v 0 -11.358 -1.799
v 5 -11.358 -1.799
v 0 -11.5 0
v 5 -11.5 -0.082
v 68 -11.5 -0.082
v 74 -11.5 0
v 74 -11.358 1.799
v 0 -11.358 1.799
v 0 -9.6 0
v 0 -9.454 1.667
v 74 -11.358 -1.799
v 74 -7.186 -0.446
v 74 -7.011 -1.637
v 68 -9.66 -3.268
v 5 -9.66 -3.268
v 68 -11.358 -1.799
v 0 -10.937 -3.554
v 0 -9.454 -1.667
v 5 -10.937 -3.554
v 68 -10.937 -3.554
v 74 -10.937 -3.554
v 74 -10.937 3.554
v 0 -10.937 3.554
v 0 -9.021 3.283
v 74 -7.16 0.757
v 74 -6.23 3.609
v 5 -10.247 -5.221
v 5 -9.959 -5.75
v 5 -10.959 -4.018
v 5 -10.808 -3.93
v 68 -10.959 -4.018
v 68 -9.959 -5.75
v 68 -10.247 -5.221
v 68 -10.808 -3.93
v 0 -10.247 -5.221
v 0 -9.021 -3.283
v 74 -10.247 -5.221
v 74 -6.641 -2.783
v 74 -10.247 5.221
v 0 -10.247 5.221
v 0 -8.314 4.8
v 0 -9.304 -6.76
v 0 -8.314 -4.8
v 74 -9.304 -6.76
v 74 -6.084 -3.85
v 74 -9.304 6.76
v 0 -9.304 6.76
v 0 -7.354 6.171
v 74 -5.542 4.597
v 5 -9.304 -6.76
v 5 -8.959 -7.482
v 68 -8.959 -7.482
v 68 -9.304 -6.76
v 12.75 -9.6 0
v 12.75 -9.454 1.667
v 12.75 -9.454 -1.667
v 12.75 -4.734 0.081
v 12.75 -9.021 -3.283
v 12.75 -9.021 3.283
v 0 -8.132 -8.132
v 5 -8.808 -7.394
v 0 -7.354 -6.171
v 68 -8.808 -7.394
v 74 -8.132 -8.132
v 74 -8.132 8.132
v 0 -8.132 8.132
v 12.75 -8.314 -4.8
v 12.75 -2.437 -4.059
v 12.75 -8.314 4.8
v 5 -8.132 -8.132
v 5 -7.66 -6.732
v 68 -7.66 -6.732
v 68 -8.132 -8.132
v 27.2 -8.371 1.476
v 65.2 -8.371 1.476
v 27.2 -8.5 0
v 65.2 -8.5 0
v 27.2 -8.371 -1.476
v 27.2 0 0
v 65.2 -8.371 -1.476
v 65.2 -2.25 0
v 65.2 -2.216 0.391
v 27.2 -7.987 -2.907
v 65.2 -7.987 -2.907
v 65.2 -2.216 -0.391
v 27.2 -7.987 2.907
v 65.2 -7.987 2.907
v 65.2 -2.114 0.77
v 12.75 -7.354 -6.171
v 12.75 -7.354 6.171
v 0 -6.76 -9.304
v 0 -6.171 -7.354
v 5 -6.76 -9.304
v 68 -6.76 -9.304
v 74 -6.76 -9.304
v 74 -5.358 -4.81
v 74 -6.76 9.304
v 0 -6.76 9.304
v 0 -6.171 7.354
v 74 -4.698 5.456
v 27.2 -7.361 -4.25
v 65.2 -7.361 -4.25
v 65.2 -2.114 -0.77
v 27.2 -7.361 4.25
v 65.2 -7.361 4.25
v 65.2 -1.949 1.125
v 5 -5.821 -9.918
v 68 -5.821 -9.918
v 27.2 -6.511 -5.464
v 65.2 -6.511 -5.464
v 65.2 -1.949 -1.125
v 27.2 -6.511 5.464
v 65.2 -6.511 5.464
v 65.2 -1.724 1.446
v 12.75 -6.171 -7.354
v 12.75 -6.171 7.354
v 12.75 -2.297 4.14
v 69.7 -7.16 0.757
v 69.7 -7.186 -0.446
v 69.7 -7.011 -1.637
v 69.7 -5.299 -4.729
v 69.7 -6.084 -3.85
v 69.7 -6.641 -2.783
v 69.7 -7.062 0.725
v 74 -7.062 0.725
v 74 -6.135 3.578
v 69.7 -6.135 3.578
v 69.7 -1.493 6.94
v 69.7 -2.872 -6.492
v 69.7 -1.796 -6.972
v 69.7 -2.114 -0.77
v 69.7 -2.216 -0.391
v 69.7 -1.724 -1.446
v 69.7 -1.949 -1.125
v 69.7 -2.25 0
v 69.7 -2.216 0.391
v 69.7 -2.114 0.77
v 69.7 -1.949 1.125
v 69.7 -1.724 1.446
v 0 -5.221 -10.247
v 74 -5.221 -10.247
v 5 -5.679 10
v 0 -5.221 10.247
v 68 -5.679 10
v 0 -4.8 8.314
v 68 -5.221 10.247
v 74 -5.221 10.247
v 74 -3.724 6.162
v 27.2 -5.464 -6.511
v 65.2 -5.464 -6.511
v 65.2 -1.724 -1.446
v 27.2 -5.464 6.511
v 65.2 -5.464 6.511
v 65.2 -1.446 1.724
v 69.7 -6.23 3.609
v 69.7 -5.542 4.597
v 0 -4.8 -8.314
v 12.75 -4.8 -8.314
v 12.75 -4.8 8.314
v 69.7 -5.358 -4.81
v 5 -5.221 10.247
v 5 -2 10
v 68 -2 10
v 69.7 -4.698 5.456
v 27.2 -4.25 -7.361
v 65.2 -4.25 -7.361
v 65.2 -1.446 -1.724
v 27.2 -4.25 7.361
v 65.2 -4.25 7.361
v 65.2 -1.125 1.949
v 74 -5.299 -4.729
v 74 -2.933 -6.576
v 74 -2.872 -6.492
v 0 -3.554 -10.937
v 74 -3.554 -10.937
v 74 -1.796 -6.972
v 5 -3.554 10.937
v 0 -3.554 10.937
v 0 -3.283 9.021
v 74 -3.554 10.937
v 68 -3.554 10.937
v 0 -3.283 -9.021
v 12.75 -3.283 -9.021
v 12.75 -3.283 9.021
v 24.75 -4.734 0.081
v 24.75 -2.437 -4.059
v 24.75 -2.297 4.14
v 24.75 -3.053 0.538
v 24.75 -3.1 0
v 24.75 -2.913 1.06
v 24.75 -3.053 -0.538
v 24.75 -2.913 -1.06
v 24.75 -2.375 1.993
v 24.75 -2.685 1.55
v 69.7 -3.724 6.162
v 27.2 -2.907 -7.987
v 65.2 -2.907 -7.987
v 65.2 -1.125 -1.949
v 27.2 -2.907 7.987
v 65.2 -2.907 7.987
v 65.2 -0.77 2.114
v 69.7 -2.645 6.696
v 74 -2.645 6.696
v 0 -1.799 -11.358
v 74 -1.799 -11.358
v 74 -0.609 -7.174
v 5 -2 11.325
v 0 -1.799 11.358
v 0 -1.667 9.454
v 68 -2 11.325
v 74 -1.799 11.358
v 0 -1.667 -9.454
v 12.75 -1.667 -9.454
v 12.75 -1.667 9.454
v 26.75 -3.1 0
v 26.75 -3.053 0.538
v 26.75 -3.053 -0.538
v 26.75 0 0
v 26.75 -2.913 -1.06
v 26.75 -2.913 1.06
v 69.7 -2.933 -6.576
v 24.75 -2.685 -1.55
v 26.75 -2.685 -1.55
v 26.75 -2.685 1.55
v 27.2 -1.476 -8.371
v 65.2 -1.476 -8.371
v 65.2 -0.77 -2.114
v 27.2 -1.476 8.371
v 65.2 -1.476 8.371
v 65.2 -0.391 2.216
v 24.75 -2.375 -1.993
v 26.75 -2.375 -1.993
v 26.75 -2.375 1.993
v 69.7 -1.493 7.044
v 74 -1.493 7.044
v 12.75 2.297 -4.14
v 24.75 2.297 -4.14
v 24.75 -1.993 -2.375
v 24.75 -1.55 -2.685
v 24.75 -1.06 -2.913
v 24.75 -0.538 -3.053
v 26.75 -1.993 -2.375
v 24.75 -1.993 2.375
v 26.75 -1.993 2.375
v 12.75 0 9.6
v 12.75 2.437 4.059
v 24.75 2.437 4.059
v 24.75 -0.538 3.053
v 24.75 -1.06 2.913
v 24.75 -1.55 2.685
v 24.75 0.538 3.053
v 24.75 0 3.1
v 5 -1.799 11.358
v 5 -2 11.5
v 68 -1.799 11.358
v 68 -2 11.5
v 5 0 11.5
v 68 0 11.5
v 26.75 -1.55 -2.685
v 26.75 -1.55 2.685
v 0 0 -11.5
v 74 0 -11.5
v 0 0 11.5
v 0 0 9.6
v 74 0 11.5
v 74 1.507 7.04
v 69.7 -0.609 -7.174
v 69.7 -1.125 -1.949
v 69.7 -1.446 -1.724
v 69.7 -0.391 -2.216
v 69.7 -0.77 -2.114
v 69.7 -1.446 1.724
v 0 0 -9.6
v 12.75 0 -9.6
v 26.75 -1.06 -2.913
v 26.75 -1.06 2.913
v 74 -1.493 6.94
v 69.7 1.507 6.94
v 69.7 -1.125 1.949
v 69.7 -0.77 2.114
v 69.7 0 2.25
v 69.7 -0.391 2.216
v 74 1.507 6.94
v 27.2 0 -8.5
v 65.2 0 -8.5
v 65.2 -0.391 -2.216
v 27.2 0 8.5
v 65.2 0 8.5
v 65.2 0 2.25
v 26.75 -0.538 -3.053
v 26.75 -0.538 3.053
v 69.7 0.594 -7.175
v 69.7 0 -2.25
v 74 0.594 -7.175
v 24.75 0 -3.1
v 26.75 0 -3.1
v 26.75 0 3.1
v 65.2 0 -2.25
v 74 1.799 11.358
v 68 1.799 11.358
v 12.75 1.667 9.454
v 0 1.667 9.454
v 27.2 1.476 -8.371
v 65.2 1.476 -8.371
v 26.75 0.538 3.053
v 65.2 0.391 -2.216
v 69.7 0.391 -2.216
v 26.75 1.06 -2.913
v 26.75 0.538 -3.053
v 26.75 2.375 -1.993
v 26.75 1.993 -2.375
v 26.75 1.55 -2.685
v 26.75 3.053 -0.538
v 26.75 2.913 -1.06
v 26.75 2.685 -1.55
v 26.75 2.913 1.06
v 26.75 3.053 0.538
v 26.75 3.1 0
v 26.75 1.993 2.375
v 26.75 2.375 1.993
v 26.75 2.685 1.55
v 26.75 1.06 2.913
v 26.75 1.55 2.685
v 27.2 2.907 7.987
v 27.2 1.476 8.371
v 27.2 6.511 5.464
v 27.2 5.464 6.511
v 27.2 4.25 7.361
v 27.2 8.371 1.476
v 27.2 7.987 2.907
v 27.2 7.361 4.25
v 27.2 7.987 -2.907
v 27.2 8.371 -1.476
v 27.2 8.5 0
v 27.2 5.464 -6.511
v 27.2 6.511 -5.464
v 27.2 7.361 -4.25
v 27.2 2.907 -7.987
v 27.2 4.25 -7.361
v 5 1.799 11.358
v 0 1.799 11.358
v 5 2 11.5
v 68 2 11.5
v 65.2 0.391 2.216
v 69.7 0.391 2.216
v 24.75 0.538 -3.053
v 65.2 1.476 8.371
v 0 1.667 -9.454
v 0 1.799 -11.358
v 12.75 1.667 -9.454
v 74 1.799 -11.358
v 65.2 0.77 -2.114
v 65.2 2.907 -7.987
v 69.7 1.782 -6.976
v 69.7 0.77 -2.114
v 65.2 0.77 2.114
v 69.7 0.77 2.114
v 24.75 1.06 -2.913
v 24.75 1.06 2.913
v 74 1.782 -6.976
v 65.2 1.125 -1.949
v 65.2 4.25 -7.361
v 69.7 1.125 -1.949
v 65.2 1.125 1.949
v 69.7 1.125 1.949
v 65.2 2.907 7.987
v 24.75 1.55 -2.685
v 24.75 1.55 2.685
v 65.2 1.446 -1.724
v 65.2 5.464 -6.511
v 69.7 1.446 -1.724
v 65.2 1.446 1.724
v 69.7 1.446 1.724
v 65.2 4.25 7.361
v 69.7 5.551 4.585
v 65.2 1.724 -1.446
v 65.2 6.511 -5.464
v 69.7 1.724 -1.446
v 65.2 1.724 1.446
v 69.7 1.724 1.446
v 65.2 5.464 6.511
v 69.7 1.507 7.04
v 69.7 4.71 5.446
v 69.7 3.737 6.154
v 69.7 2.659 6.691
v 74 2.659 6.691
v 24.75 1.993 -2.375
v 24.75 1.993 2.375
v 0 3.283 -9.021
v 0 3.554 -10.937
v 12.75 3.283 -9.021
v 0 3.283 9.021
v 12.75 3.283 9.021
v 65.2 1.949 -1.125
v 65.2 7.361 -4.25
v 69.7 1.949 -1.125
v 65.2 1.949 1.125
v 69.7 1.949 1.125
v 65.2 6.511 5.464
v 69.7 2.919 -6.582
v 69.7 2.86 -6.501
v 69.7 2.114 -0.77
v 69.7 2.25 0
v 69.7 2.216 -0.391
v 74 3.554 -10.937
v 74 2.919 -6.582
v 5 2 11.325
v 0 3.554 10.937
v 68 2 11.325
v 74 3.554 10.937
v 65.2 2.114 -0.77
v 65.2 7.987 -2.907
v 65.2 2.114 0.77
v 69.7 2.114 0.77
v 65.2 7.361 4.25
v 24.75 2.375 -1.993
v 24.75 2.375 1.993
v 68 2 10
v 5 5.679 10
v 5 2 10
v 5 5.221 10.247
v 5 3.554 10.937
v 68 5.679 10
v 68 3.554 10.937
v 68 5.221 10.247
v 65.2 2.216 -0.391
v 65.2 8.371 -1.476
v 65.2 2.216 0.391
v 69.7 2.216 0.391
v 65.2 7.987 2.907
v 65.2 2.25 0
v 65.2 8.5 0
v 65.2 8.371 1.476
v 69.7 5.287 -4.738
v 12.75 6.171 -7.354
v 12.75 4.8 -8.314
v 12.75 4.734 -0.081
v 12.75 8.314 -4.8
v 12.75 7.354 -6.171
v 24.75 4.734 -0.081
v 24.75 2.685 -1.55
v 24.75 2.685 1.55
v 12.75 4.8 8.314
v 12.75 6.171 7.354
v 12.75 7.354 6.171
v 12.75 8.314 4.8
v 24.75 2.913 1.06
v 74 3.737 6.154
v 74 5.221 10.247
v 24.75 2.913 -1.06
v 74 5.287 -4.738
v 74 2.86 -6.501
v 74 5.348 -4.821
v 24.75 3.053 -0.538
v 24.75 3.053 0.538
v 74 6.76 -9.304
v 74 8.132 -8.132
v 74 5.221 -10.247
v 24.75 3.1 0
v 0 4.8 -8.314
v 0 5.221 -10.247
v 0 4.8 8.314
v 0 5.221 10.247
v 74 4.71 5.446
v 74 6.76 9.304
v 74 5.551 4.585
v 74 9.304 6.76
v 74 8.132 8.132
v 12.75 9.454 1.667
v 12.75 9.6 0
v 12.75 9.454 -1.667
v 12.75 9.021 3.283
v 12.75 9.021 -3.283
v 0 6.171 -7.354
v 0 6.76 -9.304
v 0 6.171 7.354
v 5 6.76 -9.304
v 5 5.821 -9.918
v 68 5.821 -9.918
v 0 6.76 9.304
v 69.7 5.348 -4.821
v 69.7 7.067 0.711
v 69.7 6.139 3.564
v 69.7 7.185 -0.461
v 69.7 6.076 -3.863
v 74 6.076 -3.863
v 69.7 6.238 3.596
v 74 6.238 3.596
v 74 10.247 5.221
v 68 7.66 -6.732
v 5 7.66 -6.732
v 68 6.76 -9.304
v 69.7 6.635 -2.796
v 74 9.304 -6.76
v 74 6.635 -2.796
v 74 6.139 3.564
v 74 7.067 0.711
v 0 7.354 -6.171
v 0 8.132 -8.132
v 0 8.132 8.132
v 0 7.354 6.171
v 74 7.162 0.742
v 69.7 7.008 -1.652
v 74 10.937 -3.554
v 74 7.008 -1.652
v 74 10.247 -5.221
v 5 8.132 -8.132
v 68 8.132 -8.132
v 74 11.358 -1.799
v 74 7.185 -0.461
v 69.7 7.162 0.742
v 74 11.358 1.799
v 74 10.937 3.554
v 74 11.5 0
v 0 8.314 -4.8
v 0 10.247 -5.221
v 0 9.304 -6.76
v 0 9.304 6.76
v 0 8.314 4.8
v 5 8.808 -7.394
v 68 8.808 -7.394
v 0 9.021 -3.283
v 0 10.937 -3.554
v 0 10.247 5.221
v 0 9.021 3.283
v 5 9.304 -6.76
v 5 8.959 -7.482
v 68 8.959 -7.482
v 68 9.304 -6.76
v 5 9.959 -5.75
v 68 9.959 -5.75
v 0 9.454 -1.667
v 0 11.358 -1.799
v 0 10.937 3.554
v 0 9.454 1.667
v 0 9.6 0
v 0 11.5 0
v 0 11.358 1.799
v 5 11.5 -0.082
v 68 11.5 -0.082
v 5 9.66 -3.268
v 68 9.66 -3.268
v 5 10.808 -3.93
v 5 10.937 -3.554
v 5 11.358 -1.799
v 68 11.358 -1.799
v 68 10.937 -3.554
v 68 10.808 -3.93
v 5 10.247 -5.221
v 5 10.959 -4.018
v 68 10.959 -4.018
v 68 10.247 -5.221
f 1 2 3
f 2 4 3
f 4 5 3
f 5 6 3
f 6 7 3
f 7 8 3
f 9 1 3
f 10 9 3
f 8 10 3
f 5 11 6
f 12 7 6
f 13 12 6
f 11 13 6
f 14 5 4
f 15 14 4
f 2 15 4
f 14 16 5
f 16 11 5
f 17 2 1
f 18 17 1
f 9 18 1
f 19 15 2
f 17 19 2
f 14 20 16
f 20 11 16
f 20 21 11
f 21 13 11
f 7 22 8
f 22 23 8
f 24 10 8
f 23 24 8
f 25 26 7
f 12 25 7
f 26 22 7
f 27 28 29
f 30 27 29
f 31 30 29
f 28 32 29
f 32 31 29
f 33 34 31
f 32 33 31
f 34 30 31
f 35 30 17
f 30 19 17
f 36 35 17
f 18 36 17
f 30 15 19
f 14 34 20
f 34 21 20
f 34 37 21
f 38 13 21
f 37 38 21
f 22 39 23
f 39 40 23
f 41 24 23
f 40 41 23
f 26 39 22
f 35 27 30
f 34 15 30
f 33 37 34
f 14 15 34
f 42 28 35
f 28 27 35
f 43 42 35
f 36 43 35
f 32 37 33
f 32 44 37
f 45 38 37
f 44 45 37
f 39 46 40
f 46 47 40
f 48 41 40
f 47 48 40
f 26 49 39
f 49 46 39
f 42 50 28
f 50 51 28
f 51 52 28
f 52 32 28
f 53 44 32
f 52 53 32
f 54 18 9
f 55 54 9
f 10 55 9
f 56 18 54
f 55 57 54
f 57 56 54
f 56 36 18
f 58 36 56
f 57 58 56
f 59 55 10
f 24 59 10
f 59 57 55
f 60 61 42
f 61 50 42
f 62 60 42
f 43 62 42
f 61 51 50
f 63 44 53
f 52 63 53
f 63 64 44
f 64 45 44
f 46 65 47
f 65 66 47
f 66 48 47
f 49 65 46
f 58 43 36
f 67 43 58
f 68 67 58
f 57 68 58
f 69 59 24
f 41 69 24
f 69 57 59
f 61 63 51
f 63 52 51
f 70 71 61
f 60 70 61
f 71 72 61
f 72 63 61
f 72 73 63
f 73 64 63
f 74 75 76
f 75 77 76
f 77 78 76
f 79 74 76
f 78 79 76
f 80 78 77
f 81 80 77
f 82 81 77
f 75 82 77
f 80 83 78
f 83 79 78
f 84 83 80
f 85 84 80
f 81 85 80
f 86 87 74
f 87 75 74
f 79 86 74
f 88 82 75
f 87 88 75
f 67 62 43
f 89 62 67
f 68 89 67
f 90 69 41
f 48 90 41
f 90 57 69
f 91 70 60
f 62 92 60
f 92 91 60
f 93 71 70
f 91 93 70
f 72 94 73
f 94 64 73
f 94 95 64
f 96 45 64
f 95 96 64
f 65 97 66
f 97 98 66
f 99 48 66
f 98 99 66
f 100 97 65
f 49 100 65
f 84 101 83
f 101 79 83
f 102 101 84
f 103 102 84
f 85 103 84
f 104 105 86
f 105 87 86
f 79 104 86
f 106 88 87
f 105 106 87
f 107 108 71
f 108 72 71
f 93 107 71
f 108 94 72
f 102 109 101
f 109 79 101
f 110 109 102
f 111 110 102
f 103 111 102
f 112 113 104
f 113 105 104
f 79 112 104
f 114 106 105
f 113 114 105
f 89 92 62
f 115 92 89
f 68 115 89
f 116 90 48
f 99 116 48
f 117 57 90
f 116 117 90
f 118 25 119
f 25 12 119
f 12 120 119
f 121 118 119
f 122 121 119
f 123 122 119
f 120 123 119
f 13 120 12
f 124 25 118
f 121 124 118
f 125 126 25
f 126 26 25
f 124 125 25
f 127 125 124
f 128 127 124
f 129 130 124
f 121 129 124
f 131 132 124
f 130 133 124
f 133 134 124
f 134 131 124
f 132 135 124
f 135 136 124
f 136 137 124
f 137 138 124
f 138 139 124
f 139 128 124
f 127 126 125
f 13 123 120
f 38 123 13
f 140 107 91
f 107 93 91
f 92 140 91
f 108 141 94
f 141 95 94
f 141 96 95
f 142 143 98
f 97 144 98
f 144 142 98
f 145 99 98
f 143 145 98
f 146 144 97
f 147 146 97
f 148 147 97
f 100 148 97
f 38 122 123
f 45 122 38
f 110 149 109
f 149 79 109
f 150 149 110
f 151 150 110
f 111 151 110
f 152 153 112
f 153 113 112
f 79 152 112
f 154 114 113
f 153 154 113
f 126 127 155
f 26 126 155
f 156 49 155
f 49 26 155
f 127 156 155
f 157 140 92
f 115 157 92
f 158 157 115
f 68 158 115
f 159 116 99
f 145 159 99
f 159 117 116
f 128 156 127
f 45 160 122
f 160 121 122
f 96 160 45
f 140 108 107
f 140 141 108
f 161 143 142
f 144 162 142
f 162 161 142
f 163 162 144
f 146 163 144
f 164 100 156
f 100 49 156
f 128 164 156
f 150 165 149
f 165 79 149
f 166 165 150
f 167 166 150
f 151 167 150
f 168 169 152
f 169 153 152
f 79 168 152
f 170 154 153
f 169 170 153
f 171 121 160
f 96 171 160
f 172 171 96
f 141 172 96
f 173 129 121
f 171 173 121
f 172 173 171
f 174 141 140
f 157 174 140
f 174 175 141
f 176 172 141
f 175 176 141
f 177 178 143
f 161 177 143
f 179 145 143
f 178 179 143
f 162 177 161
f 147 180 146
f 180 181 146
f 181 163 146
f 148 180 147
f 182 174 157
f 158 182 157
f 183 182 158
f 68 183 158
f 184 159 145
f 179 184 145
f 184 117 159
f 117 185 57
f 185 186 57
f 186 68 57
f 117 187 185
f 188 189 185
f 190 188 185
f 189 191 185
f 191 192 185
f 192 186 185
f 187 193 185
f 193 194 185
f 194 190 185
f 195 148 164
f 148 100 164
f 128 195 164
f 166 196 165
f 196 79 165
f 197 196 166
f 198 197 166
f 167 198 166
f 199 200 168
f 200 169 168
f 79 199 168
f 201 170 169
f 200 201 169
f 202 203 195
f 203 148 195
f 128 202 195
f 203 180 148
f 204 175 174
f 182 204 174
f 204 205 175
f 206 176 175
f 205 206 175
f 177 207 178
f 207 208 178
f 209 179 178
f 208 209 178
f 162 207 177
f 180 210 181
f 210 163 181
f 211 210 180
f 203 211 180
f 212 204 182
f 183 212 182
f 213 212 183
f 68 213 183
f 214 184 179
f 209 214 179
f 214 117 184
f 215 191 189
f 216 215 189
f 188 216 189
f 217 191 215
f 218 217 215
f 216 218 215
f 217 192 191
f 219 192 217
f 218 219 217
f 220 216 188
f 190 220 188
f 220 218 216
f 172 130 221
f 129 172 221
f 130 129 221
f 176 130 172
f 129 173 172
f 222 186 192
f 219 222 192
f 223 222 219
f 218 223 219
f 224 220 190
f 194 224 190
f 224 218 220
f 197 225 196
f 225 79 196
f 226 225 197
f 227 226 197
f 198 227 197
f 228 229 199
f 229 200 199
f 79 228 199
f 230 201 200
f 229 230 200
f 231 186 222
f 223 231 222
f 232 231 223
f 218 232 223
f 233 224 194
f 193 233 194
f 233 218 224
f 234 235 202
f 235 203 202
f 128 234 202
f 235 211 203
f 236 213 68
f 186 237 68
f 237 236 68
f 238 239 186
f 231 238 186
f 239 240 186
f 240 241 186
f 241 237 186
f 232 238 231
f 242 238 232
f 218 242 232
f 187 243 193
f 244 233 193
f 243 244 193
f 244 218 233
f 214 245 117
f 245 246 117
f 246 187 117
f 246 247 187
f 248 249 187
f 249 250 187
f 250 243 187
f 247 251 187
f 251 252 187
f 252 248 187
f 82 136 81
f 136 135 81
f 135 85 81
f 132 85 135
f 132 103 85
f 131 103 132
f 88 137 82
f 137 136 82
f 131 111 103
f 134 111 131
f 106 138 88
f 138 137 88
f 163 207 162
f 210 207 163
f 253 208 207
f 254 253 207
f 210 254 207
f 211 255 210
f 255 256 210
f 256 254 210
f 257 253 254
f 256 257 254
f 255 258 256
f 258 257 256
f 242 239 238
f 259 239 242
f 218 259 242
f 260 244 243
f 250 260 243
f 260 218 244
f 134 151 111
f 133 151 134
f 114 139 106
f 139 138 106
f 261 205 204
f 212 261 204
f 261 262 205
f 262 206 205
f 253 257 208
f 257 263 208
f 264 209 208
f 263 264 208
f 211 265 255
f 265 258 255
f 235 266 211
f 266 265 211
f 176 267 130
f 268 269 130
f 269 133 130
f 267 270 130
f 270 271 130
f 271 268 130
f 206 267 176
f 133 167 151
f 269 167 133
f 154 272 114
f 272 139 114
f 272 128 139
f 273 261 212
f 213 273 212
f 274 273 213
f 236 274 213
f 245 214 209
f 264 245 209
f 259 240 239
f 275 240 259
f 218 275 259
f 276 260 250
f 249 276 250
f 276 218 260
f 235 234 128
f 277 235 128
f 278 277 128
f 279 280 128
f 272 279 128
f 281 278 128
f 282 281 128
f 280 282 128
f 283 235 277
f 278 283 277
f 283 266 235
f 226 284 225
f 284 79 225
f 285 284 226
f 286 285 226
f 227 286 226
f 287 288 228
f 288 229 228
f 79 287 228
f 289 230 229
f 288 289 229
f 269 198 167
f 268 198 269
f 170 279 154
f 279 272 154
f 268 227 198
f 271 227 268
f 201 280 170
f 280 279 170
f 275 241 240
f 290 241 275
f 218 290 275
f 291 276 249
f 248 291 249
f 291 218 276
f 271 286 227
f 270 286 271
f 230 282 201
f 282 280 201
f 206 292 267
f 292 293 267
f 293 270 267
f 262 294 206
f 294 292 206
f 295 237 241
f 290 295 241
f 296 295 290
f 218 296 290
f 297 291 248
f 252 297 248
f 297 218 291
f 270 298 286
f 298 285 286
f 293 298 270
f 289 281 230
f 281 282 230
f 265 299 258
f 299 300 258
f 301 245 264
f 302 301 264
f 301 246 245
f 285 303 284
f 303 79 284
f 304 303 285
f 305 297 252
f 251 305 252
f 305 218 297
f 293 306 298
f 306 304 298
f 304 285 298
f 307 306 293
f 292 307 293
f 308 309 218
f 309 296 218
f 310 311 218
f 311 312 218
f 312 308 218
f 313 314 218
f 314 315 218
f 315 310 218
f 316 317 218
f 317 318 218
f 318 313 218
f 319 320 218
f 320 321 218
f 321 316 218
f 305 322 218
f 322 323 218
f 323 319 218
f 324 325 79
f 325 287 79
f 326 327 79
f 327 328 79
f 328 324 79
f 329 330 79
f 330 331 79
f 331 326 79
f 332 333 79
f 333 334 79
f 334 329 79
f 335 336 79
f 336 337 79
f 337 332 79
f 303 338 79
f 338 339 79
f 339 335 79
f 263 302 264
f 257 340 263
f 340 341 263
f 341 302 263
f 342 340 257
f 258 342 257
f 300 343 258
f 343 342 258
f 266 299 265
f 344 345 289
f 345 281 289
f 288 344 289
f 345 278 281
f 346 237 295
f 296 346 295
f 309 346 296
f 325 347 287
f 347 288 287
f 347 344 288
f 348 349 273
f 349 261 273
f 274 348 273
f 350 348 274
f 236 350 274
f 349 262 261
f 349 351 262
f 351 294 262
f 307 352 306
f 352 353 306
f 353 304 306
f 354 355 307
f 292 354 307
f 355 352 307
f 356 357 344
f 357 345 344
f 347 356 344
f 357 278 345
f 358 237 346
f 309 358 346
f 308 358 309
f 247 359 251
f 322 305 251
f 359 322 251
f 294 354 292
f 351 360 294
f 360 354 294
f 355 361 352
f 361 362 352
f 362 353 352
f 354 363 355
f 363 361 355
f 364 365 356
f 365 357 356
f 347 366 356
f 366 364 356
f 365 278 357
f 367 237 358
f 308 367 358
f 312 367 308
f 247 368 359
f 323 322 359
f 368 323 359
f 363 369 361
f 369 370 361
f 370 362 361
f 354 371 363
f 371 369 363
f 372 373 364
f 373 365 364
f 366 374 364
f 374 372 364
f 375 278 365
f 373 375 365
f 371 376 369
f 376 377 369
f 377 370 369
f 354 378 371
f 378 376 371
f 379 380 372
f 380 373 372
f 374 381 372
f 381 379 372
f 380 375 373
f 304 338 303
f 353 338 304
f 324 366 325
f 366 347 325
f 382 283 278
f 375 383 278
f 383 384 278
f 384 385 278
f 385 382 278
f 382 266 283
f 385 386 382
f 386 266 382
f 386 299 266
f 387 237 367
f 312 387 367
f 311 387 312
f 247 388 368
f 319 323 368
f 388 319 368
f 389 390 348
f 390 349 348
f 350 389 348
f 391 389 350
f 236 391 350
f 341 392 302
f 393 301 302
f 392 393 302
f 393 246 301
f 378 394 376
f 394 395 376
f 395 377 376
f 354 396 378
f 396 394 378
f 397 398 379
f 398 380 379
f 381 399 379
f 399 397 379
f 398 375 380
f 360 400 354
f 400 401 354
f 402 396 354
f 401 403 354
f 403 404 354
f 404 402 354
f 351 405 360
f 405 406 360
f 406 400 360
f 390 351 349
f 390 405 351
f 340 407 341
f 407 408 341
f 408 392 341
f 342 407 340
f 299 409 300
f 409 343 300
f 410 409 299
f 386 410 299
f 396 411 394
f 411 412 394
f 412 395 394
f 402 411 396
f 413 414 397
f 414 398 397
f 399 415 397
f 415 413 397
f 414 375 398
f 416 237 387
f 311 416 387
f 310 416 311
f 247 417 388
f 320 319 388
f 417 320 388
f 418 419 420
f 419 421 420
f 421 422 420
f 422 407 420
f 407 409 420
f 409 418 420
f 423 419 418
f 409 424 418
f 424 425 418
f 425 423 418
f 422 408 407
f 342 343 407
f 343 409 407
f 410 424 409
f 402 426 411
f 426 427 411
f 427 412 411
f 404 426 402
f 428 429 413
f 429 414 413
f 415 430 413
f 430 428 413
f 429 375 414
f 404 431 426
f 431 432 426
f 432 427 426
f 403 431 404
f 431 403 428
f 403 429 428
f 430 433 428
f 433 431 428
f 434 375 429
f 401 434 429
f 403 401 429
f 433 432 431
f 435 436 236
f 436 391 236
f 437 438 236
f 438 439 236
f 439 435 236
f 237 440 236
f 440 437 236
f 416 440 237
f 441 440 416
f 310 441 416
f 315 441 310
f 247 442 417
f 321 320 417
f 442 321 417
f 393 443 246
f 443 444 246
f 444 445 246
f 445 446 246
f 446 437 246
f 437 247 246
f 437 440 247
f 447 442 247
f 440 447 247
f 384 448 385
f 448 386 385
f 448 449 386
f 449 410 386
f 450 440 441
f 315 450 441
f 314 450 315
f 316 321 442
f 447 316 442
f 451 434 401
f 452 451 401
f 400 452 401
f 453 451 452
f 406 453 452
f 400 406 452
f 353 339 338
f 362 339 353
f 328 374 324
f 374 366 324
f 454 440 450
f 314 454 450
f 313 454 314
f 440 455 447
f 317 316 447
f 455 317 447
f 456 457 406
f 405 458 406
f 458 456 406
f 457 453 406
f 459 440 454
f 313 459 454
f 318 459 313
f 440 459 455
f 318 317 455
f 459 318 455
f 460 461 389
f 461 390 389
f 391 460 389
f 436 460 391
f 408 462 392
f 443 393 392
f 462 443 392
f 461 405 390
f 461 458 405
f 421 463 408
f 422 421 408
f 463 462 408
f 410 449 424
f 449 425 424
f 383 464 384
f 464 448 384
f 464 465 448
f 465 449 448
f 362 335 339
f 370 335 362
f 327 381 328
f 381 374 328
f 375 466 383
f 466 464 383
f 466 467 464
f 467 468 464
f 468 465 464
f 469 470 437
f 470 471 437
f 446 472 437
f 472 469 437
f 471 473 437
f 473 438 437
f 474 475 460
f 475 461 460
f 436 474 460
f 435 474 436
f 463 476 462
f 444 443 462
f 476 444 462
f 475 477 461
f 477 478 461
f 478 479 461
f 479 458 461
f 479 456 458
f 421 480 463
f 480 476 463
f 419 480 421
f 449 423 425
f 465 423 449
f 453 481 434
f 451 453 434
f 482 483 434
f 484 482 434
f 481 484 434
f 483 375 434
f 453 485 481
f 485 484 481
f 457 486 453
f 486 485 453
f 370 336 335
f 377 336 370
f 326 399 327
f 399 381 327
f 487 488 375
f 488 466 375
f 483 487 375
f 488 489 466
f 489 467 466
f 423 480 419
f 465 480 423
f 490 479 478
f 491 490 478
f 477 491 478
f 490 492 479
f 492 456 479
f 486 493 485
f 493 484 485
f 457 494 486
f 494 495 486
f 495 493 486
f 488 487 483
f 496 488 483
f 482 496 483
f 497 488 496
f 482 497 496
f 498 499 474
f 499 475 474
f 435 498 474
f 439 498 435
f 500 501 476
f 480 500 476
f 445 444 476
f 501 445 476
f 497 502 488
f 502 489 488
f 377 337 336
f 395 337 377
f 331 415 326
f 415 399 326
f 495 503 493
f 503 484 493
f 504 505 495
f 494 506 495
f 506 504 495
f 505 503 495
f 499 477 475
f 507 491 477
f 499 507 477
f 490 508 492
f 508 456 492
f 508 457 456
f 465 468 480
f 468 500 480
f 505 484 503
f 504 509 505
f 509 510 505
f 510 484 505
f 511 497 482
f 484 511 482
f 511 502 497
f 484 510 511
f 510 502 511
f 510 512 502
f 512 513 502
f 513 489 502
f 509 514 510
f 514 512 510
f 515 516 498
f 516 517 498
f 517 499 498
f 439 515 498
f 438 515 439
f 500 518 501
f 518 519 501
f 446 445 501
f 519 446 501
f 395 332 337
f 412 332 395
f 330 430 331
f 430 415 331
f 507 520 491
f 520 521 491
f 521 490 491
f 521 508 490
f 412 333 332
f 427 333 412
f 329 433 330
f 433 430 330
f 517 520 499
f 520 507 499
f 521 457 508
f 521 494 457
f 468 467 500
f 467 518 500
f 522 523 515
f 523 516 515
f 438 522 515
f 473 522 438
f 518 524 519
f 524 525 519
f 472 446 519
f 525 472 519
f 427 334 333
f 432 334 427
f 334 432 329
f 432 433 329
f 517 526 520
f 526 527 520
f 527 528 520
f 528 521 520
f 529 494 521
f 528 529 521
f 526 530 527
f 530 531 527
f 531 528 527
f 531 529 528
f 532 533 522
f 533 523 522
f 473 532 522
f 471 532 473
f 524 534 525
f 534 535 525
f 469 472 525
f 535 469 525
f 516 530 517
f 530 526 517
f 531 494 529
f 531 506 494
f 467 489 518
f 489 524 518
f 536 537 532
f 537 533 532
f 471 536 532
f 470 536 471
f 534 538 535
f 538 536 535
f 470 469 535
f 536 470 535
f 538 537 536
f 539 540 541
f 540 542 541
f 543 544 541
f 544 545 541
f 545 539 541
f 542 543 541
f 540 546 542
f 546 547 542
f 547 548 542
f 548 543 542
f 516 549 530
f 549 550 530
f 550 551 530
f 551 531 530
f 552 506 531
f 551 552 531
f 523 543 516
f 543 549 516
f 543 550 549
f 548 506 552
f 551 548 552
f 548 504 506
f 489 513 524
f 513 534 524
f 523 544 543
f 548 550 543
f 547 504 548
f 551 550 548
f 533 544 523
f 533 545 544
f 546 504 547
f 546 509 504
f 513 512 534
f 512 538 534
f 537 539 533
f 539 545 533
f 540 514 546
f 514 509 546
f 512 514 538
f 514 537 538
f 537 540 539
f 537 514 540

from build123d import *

# Parameters (mm, degrees)
SKIZZE1_R                                 = 11.5
GRUNDK_RPER_WALZE_DEPTH                   = 74
PRESSPASSUNG_KUGELLAGER_DEPTH             = 4.3
SKIZZE3_R                                 = 2.25
M4_SCHRAUBENF_HRUNG_DEPTH                 = 4.5
SKIZZE4_R                                 = 9.6
MOTORAUSSPARUNG_DEPTH                     = 12.75
ZERST_RUNGSELEMENT_START                  = -6
SKIZZE7_W                                 = 1.5
SKIZZE7_H                                 = 15
ZERST_RUNGSELEMENT_AUSSPARUNG_DEPTH       = 63
SKIZZE8_W                                 = 63
SKIZZE8_H                                 = 4
ZERST_RUNGSELEMENT_RECHTECK_DEPTH         = 1.5
M5_MOTOR_MUTTER_DEPTH                     = 12
SKIZZE12_R                                = 3.1
M5_AUSLAUF_SCHRAUBE_DEPTH                 = 2
ZERST_RUNGSELEMENT_VERVIELF_LTIGUNG_COUNT = 3
SKIZZE13_R                                = 8.5
INNENAUSPARUNG_HOHL_DEPTH                 = 38


with BuildPart() as part:
    # Skizze1 → Grundkörper Walze (new body)
    with BuildSketch(Plane(origin=(0, 0, 0), x_dir=(0, 0, -1), z_dir=(1, 0, 0))):
        Circle(SKIZZE1_R)
    extrude(amount=GRUNDK_RPER_WALZE_DEPTH)

    # Skizze2 → Presspassung Kugellager (cut)
    with BuildSketch(Plane(origin=(74, 0, 0), x_dir=(0, 0, -1), z_dir=(1, 0, 0))):
        with BuildLine():
            Line((-7.040453047, 1.507322425), (-6.940453047, 1.507322425))
            Line((-6.940453047, 1.507322425), (-6.940453047, -1.492677575))
            Line((-6.940453047, -1.492677575), (-7.043572507, -1.492677575))
            ThreePointArc((-7.043572507, -1.492677575), (-5.829319782, -4.225994662), (-3.609168454, -6.230080503))
            Line((-3.609168454, -6.230080503), (-3.578266755, -6.134974851))
            Line((-3.578266755, -6.134974851), (-0.725097206, -7.062025834))
            Line((-0.725097206, -7.062025834), (-0.756962871, -7.160098268))
            ThreePointArc((-0.756962871, -7.160098268), (2.217800882, -6.849916733), (4.809864271, -5.357723928))
            Line((4.809864271, -5.357723928), (4.728962572, -5.298945403))
            Line((4.728962572, -5.298945403), (6.492318329, -2.87189442))
            Line((6.492318329, -2.87189442), (6.575743724, -2.932506518))
            ThreePointArc((6.575743724, -2.932506518), (7.199996108, -0.007486699), (6.581828055, 2.918825013))
            Line((6.581828055, 2.918825013), (6.500926356, 2.860046487))
            Line((6.500926356, 2.860046487), (4.737570599, 5.28709747))
            Line((4.737570599, 5.28709747), (4.820995994, 5.347709568))
            ThreePointArc((4.820995994, 5.347709568), (2.232041431, 6.845289698), (-0.742070825, 7.161656993))
            Line((-0.742070825, 7.161656993), (-0.711169126, 7.066551342))
            Line((-0.711169126, 7.066551342), (-3.564338674, 6.139500359))
            Line((-3.564338674, 6.139500359), (-3.59620434, 6.237572793))
            ThreePointArc((-3.59620434, 6.237572793), (-5.820518639, 4.238108396), (-7.040453047, 1.507322425))
        make_face()
    extrude(amount=-PRESSPASSUNG_KUGELLAGER_DEPTH, mode=Mode.SUBTRACT)

    # Skizze3 → M4 Schraubenführung (cut)
    with BuildSketch(Plane(origin=(69.7, 0, 0), x_dir=(0, 0, -1), z_dir=(1, 0, 0))):
        Circle(SKIZZE3_R)
    extrude(amount=-M4_SCHRAUBENF_HRUNG_DEPTH, mode=Mode.SUBTRACT)

    # Skizze4 → Motoraussparung (cut)
    with BuildSketch(Plane.ZY):
        Circle(SKIZZE4_R)
    extrude(amount=-MOTORAUSSPARUNG_DEPTH, mode=Mode.SUBTRACT)

    # Skizze7 → Zerstörungselement Aussparung (cut)
    with BuildSketch(Plane(origin=(74, 0, 0), x_dir=(0, 0, -1), z_dir=(1, 0, 0)).offset(ZERST_RUNGSELEMENT_START)):
        with Locations((-10.75, 0)):
            Rectangle(SKIZZE7_W, SKIZZE7_H)
    zerst_rungselement_aussparung = extrude(amount=-ZERST_RUNGSELEMENT_AUSSPARUNG_DEPTH, mode=Mode.SUBTRACT)

    # Skizze8 → Zerstörungselement Rechteck (add)
    with BuildSketch(Plane.XY.offset(10)):
        with Locations((36.5, 0)):
            Rectangle(SKIZZE8_W, SKIZZE8_H)
    zerst_rungselement_rechteck = extrude(amount=ZERST_RUNGSELEMENT_RECHTECK_DEPTH)

    # Skizze10 → M5 Motor Mutter (cut)
    with BuildSketch(Plane.ZY.offset(-12.75)):
        Polygon((4.139835299, -2.29675794), (4.058968371, 2.436823566), (-0.080866927, 4.733581506), (-4.139835299, 2.29675794), (-4.058968371, -2.436823566), (0.080866927, -4.733581506), align=None)
    extrude(amount=-M5_MOTOR_MUTTER_DEPTH, mode=Mode.SUBTRACT)

    # Skizze12 → M5 Auslauf Schraube (cut)
    with BuildSketch(Plane.ZY.offset(-24.75)):
        Circle(SKIZZE12_R)
    extrude(amount=-M5_AUSLAUF_SCHRAUBE_DEPTH, mode=Mode.SUBTRACT)

    # Zerstörungselement Vervielfältigung: Zerstörungselement Aussparung, Zerstörungselement Rechteck ×3 about axis
    zerst_rungselement_vervielf_ltigung_axis = Axis((0, 0, 0), (1, 0, 0))
    add([zerst_rungselement_aussparung.rotate(zerst_rungselement_vervielf_ltigung_axis, i * 360 / ZERST_RUNGSELEMENT_VERVIELF_LTIGUNG_COUNT) for i in range(1, ZERST_RUNGSELEMENT_VERVIELF_LTIGUNG_COUNT)], mode=Mode.SUBTRACT)
    add([zerst_rungselement_rechteck.rotate(zerst_rungselement_vervielf_ltigung_axis, i * 360 / ZERST_RUNGSELEMENT_VERVIELF_LTIGUNG_COUNT) for i in range(1, ZERST_RUNGSELEMENT_VERVIELF_LTIGUNG_COUNT)])

    # Skizze13 → Innenausparung hohl (cut)
    with BuildSketch(Plane(origin=(65.2, 0, 0), x_dir=(0, 0, -1), z_dir=(1, 0, 0))):
        Circle(SKIZZE13_R)
    extrude(amount=-INNENAUSPARUNG_HOHL_DEPTH, mode=Mode.SUBTRACT)


solid = part.part
